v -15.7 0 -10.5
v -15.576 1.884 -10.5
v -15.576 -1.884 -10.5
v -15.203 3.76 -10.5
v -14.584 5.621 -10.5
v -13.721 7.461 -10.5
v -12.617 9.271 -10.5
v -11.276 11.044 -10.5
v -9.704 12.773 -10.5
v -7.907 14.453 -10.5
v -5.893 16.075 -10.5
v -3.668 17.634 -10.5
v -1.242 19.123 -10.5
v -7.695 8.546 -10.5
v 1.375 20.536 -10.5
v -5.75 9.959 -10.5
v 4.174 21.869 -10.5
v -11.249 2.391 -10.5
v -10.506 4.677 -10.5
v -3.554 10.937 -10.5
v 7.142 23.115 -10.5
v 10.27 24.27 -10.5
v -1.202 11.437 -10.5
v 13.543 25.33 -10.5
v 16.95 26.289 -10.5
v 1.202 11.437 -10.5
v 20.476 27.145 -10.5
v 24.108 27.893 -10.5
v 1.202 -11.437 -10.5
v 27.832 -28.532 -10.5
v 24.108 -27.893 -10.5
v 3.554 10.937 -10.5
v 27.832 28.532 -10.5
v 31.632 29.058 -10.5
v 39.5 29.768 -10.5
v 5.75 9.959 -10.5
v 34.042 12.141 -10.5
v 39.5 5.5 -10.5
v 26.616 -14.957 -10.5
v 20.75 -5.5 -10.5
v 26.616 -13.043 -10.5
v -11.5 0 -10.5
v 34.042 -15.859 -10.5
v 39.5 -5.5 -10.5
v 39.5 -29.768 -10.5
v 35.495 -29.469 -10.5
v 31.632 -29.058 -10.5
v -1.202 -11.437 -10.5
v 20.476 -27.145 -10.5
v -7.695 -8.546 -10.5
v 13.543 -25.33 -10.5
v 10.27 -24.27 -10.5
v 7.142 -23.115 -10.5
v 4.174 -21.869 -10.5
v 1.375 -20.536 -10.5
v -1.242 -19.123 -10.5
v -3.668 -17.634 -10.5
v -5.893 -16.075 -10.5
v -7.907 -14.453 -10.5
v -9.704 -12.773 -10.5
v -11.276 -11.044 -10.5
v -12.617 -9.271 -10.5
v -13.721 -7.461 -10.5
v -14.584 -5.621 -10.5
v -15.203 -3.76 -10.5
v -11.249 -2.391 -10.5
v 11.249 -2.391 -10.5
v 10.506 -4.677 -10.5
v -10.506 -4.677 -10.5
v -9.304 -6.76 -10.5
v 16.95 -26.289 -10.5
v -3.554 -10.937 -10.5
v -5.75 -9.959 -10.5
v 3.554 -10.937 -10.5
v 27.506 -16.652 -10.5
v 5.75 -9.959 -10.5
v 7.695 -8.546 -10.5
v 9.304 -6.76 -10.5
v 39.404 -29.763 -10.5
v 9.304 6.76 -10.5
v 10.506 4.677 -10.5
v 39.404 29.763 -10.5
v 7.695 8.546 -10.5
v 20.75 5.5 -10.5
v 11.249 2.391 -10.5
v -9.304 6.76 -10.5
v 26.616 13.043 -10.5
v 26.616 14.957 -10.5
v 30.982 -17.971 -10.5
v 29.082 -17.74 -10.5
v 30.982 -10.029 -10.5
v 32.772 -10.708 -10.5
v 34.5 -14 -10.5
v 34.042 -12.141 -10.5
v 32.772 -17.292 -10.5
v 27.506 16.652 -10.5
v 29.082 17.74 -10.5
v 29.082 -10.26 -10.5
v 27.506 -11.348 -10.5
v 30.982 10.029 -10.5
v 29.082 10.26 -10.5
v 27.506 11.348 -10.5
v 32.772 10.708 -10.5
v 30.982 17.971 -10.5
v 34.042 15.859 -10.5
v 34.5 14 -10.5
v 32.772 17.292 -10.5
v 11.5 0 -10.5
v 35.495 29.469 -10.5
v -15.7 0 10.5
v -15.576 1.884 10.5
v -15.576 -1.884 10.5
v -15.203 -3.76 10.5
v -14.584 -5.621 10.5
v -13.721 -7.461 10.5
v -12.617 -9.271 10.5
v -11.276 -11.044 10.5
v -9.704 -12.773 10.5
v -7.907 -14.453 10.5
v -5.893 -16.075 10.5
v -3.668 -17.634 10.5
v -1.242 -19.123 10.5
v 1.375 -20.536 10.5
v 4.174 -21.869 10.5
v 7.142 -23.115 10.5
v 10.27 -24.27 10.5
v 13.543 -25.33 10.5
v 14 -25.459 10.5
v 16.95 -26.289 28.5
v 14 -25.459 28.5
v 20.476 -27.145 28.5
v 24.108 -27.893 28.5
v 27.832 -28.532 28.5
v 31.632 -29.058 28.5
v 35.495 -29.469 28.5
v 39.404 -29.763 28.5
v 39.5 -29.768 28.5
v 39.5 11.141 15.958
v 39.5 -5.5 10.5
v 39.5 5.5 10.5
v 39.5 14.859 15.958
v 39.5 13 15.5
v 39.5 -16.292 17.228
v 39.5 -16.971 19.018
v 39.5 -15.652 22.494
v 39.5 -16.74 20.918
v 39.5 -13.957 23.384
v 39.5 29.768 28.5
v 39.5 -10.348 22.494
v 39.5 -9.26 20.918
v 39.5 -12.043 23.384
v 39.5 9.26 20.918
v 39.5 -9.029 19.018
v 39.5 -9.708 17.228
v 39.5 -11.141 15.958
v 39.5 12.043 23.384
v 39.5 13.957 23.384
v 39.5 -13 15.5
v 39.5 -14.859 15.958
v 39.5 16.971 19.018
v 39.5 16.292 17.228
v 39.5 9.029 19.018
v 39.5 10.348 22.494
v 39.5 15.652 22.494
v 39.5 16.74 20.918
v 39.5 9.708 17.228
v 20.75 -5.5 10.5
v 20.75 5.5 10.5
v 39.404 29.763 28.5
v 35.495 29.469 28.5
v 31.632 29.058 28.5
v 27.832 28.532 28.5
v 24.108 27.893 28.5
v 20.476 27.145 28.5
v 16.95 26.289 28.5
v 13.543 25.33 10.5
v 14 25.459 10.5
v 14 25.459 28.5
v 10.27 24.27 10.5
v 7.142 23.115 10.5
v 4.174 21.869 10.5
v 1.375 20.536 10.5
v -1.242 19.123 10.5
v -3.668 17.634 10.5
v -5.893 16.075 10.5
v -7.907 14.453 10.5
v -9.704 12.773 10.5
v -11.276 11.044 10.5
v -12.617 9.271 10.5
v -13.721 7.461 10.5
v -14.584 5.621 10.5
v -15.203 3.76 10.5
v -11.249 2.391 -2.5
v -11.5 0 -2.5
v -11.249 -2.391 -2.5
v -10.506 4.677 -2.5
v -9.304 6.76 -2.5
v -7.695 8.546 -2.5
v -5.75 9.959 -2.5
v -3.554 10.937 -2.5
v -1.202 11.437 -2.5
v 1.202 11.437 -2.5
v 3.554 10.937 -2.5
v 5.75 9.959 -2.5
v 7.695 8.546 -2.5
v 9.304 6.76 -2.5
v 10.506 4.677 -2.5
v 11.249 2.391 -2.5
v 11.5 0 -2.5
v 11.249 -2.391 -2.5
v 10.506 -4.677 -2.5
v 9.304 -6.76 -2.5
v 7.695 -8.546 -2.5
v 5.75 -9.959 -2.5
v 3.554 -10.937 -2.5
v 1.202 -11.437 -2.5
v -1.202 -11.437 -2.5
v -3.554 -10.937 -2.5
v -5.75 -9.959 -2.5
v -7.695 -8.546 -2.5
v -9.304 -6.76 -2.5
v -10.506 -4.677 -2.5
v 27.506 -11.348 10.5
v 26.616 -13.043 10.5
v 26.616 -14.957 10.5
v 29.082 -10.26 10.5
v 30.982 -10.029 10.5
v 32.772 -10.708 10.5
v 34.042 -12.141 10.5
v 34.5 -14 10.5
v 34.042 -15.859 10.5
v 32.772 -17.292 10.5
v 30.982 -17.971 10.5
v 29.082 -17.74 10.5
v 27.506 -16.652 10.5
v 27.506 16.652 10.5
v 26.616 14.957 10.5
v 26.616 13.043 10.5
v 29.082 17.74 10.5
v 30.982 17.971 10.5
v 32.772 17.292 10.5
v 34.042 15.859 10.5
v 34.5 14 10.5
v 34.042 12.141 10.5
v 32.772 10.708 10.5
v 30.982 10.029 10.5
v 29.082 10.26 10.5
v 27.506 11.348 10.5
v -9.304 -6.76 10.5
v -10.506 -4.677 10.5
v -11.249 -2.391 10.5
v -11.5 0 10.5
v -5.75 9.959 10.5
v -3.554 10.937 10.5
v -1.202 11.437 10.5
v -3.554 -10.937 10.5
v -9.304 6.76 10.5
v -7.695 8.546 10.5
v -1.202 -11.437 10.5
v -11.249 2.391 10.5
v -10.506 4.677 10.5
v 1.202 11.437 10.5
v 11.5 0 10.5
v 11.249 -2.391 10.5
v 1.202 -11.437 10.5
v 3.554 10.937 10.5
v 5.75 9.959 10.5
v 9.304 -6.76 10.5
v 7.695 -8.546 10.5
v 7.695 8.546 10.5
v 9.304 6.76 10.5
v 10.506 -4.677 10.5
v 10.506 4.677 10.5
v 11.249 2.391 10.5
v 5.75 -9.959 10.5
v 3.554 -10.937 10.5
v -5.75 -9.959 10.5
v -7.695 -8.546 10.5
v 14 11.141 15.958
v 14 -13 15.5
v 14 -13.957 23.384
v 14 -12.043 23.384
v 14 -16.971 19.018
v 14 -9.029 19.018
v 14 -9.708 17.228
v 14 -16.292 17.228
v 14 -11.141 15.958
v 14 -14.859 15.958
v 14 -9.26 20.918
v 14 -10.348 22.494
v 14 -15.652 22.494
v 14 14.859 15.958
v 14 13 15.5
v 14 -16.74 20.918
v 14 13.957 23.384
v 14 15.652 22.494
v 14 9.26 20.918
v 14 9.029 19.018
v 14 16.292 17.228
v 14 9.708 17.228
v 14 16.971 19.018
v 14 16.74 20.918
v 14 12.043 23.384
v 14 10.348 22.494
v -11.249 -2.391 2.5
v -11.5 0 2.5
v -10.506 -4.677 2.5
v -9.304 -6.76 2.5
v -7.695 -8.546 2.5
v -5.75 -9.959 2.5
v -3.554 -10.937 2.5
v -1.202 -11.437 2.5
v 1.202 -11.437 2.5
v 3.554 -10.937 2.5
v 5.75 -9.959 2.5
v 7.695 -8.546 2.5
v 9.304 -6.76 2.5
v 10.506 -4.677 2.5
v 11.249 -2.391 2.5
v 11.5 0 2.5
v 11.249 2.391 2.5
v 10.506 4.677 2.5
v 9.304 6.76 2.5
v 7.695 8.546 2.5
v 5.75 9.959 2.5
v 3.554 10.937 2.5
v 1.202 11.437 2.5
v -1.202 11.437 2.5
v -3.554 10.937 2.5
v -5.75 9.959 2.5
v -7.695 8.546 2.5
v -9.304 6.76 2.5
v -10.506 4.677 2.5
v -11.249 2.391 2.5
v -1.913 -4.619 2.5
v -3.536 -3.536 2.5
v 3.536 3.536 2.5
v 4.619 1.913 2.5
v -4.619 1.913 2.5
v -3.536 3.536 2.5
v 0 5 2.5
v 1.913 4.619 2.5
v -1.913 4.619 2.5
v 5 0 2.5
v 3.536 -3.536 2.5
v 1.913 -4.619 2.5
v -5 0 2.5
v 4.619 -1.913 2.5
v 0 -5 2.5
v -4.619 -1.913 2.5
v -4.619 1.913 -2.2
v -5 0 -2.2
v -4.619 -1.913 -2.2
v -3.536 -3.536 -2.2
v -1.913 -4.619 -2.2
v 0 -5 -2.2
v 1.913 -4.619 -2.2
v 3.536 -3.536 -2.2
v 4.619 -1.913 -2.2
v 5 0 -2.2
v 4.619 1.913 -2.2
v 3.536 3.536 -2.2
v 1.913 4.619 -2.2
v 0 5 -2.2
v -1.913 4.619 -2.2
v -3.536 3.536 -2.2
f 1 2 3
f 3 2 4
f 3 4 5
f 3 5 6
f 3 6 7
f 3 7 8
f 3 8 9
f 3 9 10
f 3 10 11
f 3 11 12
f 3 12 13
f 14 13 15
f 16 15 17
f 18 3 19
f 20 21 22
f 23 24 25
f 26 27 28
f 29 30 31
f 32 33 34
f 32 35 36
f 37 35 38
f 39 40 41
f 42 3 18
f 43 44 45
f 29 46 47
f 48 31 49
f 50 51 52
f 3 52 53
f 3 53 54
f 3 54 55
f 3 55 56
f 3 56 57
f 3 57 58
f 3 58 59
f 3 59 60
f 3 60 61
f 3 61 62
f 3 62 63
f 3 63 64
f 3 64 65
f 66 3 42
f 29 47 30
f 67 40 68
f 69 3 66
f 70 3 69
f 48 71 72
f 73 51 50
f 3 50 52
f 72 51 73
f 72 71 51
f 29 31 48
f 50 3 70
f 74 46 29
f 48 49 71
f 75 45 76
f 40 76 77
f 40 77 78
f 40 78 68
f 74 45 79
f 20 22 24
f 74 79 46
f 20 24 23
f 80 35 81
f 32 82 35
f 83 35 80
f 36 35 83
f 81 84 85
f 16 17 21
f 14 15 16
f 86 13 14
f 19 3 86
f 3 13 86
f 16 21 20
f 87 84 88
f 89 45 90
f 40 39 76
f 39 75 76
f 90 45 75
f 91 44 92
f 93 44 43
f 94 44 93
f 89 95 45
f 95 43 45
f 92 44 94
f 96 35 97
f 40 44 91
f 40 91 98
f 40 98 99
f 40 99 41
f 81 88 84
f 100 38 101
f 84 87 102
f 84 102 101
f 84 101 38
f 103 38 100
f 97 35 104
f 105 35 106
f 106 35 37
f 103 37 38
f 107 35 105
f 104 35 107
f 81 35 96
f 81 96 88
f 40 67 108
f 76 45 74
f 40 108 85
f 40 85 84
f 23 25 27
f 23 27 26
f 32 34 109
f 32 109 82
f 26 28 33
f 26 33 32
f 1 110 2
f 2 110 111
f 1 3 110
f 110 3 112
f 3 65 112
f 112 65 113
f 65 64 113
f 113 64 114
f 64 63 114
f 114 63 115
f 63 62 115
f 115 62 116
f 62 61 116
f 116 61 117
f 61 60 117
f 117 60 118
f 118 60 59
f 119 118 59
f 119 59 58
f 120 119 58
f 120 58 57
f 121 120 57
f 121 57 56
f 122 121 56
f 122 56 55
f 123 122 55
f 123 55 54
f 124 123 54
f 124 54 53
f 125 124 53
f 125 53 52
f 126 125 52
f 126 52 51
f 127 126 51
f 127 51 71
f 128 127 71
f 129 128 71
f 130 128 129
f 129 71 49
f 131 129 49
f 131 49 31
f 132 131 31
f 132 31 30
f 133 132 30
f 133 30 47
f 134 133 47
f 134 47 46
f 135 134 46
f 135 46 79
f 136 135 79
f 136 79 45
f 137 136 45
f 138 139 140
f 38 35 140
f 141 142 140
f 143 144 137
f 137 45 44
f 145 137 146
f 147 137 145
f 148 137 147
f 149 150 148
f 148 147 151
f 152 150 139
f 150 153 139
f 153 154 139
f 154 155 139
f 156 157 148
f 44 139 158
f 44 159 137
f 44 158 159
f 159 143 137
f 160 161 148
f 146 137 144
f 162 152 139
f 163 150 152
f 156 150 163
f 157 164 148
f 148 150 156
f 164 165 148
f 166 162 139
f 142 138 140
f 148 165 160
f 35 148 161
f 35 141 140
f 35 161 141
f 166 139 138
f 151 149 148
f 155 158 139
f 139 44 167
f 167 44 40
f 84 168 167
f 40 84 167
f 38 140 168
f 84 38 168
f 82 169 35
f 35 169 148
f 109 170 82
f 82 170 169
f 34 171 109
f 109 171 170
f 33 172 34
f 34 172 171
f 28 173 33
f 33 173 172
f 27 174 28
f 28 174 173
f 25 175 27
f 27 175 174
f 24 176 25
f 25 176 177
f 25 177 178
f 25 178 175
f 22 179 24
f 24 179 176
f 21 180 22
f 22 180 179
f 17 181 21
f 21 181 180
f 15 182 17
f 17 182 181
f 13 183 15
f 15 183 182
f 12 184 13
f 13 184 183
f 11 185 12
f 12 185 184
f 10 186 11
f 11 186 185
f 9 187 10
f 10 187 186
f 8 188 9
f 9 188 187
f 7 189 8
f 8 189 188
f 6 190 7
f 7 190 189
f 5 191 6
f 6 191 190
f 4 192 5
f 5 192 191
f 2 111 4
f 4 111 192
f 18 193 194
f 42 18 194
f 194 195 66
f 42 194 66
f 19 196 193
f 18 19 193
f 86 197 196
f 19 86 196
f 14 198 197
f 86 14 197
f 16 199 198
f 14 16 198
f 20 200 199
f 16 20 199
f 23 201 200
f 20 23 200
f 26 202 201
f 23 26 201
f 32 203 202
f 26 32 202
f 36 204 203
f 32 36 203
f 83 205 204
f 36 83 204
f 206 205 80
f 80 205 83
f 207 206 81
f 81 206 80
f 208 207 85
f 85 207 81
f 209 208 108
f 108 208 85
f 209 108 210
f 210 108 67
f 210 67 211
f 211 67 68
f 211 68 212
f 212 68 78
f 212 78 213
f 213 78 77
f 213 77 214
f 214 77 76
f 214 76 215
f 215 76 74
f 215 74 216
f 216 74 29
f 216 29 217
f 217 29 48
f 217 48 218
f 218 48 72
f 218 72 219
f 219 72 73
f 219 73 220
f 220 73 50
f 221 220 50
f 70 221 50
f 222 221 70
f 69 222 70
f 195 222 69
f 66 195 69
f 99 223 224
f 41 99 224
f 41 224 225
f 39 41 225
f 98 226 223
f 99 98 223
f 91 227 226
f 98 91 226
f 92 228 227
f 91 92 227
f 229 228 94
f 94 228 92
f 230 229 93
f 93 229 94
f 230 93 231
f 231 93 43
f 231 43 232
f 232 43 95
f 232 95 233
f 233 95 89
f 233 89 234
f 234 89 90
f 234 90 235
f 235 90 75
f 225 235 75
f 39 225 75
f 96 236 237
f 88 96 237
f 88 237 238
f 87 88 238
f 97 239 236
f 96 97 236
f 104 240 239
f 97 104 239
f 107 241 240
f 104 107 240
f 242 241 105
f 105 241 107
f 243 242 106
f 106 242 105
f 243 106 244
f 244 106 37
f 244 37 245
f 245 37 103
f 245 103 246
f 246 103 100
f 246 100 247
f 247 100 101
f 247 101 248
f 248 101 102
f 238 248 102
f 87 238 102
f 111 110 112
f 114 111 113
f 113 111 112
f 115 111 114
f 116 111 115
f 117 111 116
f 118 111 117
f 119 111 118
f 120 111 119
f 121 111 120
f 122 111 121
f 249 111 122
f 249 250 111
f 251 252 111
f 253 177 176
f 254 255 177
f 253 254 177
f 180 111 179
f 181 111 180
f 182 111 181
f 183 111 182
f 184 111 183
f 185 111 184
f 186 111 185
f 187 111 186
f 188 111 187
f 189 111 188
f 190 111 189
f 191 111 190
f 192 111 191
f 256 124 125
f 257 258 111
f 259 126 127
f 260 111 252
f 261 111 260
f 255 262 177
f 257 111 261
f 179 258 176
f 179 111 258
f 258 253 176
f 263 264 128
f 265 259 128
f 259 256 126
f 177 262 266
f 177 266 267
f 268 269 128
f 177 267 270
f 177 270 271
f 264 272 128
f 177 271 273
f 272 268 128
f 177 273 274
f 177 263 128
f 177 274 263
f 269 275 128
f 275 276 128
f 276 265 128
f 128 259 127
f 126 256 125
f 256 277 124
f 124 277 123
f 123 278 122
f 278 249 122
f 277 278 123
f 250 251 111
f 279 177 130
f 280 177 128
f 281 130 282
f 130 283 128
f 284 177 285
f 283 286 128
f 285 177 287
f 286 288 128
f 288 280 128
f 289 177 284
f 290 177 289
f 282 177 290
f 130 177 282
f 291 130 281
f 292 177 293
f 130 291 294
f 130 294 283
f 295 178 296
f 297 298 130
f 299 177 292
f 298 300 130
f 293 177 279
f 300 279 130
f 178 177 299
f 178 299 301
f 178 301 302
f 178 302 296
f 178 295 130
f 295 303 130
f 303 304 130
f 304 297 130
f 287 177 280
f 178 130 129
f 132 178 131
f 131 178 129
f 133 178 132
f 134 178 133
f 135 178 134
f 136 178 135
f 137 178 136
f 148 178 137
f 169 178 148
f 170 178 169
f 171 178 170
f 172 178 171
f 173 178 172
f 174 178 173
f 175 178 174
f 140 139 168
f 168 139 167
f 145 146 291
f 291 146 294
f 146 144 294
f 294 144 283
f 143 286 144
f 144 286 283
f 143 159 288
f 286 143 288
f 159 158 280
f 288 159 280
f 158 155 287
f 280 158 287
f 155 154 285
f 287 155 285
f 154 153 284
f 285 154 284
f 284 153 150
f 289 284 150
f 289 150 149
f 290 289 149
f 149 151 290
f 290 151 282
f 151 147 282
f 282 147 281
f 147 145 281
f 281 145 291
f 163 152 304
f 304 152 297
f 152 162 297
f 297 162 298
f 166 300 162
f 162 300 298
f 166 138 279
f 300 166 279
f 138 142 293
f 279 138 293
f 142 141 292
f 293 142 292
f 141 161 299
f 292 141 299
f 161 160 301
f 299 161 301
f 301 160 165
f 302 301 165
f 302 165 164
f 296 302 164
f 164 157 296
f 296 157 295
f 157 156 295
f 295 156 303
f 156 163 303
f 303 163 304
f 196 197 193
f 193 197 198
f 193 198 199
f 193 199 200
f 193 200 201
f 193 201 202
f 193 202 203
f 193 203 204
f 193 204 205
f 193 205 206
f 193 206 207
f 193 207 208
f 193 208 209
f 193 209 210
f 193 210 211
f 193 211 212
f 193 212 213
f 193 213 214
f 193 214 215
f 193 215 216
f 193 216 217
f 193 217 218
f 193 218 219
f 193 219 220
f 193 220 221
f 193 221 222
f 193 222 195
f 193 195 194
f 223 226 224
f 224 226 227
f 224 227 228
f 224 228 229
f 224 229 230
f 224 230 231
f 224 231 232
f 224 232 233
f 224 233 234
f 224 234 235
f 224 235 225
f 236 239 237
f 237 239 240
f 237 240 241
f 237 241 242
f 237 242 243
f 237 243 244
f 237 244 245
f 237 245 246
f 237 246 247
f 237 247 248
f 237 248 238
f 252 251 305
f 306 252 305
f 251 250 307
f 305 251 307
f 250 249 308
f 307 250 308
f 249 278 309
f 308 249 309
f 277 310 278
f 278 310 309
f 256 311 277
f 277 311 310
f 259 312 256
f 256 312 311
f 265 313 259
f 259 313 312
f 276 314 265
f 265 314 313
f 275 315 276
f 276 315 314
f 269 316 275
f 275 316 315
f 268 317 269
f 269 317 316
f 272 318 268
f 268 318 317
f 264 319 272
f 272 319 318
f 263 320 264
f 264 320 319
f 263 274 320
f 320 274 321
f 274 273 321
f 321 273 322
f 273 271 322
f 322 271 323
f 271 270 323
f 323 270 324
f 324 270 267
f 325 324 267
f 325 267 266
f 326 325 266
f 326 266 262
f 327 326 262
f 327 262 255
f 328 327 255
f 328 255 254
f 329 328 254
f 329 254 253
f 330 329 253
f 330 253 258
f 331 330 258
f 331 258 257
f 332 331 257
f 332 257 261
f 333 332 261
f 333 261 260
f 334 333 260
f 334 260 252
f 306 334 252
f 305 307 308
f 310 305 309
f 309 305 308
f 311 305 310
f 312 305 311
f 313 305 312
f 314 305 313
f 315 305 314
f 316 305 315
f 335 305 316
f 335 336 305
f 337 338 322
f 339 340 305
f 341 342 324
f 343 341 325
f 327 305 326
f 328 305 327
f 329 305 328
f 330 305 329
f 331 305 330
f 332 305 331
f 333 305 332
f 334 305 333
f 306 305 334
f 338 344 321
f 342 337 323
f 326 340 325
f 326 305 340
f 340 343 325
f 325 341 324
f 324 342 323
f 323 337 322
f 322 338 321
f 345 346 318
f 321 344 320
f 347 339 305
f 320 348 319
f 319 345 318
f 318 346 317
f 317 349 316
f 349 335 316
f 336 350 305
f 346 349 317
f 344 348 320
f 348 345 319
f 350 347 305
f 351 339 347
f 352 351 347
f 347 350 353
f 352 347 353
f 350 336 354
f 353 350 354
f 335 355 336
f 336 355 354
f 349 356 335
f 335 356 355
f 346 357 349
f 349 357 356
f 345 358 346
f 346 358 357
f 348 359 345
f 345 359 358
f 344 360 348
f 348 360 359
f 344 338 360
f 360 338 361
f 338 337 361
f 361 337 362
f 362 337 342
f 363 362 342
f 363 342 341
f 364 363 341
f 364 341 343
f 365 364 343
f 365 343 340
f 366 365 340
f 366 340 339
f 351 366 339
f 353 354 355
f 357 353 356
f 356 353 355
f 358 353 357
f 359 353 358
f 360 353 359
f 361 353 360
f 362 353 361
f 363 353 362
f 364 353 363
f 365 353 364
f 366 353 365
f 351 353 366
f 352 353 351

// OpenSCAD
// file: configuration.scad
// This is part of miPrint package
// GNU GPL version 3

print = 200;
wall = 5;
rod = 8;
minirod = 3;
motorw = 43;
motorh = 47;
inf = 500;
bearingd = 7+1; // including 1 washer
bearingr = 11+0.5; // including clearance
layer = 0.3;

// RAIL: http://eshop.prodance.cz/fotocache/add/620612_1.jpg
rail = 10; // outside
raildepth = 15;
// main file
// This is part of miPrint package
// GNU GPL version 3

include <configuration.scad>


difference() {
  translate([motorw*1.1,0,0]) scale([2.1,1,1]) cylinder(r=motorw/2+wall*1.7,h=2*bearingd+wall,center=true,$fn=100);
  translate([inf/2+motorw/2+rod+2*wall,0,0]) cube([inf,inf,inf],center=true);
  translate([0,0,-wall/2+layer]) cylinder(r=rod/2+1,h=inf);
  translate([0,0,-bearingd/2+bearingd+wall/2]) cylinder(r=bearingr,h=bearingd,center=true);
  translate([0,0,bearingd/2-bearingd-wall/2]) cylinder(r=bearingr,h=bearingd,center=true);
  translate([motorw/2+rod/2+wall,motorw/2-wall*1.5,0]) cylinder(r=rod/2,h=inf,center=true);
  translate([motorw/2+rod/2+wall,-motorw/2+wall*1.5,0]) cylinder(r=rod/2,h=inf,center=true);
  translate([motorw/2+wall*2,0,0]) cube([motorw/2,motorw/2-bearingd-wall/2,2*bearingd+wall],center=true);
}

translate([0,0,wall+rod/2+bearingd+wall/2]) difference() {
  translate([motorw*1.1,0,0]) scale([2.1,1,1]) cylinder(r=motorw/2+wall*1.7,h=wall*2+rod,center=true,$fn=100);
  translate([inf/2+motorw/2+rod+2*wall,0,0]) cube([inf,inf,inf],center=true);
  translate([-inf/2+rod/2+wall*2,0,0]) cube([inf,inf,inf],center=true);
  translate([0,rod+wall,0]) rotate([0,90,0]) cylinder(r=rod/2,h=inf,center=true);
  translate([0,-rod-wall,0]) rotate([0,90,0]) cylinder(r=rod/2,h=inf,center=true);
}
